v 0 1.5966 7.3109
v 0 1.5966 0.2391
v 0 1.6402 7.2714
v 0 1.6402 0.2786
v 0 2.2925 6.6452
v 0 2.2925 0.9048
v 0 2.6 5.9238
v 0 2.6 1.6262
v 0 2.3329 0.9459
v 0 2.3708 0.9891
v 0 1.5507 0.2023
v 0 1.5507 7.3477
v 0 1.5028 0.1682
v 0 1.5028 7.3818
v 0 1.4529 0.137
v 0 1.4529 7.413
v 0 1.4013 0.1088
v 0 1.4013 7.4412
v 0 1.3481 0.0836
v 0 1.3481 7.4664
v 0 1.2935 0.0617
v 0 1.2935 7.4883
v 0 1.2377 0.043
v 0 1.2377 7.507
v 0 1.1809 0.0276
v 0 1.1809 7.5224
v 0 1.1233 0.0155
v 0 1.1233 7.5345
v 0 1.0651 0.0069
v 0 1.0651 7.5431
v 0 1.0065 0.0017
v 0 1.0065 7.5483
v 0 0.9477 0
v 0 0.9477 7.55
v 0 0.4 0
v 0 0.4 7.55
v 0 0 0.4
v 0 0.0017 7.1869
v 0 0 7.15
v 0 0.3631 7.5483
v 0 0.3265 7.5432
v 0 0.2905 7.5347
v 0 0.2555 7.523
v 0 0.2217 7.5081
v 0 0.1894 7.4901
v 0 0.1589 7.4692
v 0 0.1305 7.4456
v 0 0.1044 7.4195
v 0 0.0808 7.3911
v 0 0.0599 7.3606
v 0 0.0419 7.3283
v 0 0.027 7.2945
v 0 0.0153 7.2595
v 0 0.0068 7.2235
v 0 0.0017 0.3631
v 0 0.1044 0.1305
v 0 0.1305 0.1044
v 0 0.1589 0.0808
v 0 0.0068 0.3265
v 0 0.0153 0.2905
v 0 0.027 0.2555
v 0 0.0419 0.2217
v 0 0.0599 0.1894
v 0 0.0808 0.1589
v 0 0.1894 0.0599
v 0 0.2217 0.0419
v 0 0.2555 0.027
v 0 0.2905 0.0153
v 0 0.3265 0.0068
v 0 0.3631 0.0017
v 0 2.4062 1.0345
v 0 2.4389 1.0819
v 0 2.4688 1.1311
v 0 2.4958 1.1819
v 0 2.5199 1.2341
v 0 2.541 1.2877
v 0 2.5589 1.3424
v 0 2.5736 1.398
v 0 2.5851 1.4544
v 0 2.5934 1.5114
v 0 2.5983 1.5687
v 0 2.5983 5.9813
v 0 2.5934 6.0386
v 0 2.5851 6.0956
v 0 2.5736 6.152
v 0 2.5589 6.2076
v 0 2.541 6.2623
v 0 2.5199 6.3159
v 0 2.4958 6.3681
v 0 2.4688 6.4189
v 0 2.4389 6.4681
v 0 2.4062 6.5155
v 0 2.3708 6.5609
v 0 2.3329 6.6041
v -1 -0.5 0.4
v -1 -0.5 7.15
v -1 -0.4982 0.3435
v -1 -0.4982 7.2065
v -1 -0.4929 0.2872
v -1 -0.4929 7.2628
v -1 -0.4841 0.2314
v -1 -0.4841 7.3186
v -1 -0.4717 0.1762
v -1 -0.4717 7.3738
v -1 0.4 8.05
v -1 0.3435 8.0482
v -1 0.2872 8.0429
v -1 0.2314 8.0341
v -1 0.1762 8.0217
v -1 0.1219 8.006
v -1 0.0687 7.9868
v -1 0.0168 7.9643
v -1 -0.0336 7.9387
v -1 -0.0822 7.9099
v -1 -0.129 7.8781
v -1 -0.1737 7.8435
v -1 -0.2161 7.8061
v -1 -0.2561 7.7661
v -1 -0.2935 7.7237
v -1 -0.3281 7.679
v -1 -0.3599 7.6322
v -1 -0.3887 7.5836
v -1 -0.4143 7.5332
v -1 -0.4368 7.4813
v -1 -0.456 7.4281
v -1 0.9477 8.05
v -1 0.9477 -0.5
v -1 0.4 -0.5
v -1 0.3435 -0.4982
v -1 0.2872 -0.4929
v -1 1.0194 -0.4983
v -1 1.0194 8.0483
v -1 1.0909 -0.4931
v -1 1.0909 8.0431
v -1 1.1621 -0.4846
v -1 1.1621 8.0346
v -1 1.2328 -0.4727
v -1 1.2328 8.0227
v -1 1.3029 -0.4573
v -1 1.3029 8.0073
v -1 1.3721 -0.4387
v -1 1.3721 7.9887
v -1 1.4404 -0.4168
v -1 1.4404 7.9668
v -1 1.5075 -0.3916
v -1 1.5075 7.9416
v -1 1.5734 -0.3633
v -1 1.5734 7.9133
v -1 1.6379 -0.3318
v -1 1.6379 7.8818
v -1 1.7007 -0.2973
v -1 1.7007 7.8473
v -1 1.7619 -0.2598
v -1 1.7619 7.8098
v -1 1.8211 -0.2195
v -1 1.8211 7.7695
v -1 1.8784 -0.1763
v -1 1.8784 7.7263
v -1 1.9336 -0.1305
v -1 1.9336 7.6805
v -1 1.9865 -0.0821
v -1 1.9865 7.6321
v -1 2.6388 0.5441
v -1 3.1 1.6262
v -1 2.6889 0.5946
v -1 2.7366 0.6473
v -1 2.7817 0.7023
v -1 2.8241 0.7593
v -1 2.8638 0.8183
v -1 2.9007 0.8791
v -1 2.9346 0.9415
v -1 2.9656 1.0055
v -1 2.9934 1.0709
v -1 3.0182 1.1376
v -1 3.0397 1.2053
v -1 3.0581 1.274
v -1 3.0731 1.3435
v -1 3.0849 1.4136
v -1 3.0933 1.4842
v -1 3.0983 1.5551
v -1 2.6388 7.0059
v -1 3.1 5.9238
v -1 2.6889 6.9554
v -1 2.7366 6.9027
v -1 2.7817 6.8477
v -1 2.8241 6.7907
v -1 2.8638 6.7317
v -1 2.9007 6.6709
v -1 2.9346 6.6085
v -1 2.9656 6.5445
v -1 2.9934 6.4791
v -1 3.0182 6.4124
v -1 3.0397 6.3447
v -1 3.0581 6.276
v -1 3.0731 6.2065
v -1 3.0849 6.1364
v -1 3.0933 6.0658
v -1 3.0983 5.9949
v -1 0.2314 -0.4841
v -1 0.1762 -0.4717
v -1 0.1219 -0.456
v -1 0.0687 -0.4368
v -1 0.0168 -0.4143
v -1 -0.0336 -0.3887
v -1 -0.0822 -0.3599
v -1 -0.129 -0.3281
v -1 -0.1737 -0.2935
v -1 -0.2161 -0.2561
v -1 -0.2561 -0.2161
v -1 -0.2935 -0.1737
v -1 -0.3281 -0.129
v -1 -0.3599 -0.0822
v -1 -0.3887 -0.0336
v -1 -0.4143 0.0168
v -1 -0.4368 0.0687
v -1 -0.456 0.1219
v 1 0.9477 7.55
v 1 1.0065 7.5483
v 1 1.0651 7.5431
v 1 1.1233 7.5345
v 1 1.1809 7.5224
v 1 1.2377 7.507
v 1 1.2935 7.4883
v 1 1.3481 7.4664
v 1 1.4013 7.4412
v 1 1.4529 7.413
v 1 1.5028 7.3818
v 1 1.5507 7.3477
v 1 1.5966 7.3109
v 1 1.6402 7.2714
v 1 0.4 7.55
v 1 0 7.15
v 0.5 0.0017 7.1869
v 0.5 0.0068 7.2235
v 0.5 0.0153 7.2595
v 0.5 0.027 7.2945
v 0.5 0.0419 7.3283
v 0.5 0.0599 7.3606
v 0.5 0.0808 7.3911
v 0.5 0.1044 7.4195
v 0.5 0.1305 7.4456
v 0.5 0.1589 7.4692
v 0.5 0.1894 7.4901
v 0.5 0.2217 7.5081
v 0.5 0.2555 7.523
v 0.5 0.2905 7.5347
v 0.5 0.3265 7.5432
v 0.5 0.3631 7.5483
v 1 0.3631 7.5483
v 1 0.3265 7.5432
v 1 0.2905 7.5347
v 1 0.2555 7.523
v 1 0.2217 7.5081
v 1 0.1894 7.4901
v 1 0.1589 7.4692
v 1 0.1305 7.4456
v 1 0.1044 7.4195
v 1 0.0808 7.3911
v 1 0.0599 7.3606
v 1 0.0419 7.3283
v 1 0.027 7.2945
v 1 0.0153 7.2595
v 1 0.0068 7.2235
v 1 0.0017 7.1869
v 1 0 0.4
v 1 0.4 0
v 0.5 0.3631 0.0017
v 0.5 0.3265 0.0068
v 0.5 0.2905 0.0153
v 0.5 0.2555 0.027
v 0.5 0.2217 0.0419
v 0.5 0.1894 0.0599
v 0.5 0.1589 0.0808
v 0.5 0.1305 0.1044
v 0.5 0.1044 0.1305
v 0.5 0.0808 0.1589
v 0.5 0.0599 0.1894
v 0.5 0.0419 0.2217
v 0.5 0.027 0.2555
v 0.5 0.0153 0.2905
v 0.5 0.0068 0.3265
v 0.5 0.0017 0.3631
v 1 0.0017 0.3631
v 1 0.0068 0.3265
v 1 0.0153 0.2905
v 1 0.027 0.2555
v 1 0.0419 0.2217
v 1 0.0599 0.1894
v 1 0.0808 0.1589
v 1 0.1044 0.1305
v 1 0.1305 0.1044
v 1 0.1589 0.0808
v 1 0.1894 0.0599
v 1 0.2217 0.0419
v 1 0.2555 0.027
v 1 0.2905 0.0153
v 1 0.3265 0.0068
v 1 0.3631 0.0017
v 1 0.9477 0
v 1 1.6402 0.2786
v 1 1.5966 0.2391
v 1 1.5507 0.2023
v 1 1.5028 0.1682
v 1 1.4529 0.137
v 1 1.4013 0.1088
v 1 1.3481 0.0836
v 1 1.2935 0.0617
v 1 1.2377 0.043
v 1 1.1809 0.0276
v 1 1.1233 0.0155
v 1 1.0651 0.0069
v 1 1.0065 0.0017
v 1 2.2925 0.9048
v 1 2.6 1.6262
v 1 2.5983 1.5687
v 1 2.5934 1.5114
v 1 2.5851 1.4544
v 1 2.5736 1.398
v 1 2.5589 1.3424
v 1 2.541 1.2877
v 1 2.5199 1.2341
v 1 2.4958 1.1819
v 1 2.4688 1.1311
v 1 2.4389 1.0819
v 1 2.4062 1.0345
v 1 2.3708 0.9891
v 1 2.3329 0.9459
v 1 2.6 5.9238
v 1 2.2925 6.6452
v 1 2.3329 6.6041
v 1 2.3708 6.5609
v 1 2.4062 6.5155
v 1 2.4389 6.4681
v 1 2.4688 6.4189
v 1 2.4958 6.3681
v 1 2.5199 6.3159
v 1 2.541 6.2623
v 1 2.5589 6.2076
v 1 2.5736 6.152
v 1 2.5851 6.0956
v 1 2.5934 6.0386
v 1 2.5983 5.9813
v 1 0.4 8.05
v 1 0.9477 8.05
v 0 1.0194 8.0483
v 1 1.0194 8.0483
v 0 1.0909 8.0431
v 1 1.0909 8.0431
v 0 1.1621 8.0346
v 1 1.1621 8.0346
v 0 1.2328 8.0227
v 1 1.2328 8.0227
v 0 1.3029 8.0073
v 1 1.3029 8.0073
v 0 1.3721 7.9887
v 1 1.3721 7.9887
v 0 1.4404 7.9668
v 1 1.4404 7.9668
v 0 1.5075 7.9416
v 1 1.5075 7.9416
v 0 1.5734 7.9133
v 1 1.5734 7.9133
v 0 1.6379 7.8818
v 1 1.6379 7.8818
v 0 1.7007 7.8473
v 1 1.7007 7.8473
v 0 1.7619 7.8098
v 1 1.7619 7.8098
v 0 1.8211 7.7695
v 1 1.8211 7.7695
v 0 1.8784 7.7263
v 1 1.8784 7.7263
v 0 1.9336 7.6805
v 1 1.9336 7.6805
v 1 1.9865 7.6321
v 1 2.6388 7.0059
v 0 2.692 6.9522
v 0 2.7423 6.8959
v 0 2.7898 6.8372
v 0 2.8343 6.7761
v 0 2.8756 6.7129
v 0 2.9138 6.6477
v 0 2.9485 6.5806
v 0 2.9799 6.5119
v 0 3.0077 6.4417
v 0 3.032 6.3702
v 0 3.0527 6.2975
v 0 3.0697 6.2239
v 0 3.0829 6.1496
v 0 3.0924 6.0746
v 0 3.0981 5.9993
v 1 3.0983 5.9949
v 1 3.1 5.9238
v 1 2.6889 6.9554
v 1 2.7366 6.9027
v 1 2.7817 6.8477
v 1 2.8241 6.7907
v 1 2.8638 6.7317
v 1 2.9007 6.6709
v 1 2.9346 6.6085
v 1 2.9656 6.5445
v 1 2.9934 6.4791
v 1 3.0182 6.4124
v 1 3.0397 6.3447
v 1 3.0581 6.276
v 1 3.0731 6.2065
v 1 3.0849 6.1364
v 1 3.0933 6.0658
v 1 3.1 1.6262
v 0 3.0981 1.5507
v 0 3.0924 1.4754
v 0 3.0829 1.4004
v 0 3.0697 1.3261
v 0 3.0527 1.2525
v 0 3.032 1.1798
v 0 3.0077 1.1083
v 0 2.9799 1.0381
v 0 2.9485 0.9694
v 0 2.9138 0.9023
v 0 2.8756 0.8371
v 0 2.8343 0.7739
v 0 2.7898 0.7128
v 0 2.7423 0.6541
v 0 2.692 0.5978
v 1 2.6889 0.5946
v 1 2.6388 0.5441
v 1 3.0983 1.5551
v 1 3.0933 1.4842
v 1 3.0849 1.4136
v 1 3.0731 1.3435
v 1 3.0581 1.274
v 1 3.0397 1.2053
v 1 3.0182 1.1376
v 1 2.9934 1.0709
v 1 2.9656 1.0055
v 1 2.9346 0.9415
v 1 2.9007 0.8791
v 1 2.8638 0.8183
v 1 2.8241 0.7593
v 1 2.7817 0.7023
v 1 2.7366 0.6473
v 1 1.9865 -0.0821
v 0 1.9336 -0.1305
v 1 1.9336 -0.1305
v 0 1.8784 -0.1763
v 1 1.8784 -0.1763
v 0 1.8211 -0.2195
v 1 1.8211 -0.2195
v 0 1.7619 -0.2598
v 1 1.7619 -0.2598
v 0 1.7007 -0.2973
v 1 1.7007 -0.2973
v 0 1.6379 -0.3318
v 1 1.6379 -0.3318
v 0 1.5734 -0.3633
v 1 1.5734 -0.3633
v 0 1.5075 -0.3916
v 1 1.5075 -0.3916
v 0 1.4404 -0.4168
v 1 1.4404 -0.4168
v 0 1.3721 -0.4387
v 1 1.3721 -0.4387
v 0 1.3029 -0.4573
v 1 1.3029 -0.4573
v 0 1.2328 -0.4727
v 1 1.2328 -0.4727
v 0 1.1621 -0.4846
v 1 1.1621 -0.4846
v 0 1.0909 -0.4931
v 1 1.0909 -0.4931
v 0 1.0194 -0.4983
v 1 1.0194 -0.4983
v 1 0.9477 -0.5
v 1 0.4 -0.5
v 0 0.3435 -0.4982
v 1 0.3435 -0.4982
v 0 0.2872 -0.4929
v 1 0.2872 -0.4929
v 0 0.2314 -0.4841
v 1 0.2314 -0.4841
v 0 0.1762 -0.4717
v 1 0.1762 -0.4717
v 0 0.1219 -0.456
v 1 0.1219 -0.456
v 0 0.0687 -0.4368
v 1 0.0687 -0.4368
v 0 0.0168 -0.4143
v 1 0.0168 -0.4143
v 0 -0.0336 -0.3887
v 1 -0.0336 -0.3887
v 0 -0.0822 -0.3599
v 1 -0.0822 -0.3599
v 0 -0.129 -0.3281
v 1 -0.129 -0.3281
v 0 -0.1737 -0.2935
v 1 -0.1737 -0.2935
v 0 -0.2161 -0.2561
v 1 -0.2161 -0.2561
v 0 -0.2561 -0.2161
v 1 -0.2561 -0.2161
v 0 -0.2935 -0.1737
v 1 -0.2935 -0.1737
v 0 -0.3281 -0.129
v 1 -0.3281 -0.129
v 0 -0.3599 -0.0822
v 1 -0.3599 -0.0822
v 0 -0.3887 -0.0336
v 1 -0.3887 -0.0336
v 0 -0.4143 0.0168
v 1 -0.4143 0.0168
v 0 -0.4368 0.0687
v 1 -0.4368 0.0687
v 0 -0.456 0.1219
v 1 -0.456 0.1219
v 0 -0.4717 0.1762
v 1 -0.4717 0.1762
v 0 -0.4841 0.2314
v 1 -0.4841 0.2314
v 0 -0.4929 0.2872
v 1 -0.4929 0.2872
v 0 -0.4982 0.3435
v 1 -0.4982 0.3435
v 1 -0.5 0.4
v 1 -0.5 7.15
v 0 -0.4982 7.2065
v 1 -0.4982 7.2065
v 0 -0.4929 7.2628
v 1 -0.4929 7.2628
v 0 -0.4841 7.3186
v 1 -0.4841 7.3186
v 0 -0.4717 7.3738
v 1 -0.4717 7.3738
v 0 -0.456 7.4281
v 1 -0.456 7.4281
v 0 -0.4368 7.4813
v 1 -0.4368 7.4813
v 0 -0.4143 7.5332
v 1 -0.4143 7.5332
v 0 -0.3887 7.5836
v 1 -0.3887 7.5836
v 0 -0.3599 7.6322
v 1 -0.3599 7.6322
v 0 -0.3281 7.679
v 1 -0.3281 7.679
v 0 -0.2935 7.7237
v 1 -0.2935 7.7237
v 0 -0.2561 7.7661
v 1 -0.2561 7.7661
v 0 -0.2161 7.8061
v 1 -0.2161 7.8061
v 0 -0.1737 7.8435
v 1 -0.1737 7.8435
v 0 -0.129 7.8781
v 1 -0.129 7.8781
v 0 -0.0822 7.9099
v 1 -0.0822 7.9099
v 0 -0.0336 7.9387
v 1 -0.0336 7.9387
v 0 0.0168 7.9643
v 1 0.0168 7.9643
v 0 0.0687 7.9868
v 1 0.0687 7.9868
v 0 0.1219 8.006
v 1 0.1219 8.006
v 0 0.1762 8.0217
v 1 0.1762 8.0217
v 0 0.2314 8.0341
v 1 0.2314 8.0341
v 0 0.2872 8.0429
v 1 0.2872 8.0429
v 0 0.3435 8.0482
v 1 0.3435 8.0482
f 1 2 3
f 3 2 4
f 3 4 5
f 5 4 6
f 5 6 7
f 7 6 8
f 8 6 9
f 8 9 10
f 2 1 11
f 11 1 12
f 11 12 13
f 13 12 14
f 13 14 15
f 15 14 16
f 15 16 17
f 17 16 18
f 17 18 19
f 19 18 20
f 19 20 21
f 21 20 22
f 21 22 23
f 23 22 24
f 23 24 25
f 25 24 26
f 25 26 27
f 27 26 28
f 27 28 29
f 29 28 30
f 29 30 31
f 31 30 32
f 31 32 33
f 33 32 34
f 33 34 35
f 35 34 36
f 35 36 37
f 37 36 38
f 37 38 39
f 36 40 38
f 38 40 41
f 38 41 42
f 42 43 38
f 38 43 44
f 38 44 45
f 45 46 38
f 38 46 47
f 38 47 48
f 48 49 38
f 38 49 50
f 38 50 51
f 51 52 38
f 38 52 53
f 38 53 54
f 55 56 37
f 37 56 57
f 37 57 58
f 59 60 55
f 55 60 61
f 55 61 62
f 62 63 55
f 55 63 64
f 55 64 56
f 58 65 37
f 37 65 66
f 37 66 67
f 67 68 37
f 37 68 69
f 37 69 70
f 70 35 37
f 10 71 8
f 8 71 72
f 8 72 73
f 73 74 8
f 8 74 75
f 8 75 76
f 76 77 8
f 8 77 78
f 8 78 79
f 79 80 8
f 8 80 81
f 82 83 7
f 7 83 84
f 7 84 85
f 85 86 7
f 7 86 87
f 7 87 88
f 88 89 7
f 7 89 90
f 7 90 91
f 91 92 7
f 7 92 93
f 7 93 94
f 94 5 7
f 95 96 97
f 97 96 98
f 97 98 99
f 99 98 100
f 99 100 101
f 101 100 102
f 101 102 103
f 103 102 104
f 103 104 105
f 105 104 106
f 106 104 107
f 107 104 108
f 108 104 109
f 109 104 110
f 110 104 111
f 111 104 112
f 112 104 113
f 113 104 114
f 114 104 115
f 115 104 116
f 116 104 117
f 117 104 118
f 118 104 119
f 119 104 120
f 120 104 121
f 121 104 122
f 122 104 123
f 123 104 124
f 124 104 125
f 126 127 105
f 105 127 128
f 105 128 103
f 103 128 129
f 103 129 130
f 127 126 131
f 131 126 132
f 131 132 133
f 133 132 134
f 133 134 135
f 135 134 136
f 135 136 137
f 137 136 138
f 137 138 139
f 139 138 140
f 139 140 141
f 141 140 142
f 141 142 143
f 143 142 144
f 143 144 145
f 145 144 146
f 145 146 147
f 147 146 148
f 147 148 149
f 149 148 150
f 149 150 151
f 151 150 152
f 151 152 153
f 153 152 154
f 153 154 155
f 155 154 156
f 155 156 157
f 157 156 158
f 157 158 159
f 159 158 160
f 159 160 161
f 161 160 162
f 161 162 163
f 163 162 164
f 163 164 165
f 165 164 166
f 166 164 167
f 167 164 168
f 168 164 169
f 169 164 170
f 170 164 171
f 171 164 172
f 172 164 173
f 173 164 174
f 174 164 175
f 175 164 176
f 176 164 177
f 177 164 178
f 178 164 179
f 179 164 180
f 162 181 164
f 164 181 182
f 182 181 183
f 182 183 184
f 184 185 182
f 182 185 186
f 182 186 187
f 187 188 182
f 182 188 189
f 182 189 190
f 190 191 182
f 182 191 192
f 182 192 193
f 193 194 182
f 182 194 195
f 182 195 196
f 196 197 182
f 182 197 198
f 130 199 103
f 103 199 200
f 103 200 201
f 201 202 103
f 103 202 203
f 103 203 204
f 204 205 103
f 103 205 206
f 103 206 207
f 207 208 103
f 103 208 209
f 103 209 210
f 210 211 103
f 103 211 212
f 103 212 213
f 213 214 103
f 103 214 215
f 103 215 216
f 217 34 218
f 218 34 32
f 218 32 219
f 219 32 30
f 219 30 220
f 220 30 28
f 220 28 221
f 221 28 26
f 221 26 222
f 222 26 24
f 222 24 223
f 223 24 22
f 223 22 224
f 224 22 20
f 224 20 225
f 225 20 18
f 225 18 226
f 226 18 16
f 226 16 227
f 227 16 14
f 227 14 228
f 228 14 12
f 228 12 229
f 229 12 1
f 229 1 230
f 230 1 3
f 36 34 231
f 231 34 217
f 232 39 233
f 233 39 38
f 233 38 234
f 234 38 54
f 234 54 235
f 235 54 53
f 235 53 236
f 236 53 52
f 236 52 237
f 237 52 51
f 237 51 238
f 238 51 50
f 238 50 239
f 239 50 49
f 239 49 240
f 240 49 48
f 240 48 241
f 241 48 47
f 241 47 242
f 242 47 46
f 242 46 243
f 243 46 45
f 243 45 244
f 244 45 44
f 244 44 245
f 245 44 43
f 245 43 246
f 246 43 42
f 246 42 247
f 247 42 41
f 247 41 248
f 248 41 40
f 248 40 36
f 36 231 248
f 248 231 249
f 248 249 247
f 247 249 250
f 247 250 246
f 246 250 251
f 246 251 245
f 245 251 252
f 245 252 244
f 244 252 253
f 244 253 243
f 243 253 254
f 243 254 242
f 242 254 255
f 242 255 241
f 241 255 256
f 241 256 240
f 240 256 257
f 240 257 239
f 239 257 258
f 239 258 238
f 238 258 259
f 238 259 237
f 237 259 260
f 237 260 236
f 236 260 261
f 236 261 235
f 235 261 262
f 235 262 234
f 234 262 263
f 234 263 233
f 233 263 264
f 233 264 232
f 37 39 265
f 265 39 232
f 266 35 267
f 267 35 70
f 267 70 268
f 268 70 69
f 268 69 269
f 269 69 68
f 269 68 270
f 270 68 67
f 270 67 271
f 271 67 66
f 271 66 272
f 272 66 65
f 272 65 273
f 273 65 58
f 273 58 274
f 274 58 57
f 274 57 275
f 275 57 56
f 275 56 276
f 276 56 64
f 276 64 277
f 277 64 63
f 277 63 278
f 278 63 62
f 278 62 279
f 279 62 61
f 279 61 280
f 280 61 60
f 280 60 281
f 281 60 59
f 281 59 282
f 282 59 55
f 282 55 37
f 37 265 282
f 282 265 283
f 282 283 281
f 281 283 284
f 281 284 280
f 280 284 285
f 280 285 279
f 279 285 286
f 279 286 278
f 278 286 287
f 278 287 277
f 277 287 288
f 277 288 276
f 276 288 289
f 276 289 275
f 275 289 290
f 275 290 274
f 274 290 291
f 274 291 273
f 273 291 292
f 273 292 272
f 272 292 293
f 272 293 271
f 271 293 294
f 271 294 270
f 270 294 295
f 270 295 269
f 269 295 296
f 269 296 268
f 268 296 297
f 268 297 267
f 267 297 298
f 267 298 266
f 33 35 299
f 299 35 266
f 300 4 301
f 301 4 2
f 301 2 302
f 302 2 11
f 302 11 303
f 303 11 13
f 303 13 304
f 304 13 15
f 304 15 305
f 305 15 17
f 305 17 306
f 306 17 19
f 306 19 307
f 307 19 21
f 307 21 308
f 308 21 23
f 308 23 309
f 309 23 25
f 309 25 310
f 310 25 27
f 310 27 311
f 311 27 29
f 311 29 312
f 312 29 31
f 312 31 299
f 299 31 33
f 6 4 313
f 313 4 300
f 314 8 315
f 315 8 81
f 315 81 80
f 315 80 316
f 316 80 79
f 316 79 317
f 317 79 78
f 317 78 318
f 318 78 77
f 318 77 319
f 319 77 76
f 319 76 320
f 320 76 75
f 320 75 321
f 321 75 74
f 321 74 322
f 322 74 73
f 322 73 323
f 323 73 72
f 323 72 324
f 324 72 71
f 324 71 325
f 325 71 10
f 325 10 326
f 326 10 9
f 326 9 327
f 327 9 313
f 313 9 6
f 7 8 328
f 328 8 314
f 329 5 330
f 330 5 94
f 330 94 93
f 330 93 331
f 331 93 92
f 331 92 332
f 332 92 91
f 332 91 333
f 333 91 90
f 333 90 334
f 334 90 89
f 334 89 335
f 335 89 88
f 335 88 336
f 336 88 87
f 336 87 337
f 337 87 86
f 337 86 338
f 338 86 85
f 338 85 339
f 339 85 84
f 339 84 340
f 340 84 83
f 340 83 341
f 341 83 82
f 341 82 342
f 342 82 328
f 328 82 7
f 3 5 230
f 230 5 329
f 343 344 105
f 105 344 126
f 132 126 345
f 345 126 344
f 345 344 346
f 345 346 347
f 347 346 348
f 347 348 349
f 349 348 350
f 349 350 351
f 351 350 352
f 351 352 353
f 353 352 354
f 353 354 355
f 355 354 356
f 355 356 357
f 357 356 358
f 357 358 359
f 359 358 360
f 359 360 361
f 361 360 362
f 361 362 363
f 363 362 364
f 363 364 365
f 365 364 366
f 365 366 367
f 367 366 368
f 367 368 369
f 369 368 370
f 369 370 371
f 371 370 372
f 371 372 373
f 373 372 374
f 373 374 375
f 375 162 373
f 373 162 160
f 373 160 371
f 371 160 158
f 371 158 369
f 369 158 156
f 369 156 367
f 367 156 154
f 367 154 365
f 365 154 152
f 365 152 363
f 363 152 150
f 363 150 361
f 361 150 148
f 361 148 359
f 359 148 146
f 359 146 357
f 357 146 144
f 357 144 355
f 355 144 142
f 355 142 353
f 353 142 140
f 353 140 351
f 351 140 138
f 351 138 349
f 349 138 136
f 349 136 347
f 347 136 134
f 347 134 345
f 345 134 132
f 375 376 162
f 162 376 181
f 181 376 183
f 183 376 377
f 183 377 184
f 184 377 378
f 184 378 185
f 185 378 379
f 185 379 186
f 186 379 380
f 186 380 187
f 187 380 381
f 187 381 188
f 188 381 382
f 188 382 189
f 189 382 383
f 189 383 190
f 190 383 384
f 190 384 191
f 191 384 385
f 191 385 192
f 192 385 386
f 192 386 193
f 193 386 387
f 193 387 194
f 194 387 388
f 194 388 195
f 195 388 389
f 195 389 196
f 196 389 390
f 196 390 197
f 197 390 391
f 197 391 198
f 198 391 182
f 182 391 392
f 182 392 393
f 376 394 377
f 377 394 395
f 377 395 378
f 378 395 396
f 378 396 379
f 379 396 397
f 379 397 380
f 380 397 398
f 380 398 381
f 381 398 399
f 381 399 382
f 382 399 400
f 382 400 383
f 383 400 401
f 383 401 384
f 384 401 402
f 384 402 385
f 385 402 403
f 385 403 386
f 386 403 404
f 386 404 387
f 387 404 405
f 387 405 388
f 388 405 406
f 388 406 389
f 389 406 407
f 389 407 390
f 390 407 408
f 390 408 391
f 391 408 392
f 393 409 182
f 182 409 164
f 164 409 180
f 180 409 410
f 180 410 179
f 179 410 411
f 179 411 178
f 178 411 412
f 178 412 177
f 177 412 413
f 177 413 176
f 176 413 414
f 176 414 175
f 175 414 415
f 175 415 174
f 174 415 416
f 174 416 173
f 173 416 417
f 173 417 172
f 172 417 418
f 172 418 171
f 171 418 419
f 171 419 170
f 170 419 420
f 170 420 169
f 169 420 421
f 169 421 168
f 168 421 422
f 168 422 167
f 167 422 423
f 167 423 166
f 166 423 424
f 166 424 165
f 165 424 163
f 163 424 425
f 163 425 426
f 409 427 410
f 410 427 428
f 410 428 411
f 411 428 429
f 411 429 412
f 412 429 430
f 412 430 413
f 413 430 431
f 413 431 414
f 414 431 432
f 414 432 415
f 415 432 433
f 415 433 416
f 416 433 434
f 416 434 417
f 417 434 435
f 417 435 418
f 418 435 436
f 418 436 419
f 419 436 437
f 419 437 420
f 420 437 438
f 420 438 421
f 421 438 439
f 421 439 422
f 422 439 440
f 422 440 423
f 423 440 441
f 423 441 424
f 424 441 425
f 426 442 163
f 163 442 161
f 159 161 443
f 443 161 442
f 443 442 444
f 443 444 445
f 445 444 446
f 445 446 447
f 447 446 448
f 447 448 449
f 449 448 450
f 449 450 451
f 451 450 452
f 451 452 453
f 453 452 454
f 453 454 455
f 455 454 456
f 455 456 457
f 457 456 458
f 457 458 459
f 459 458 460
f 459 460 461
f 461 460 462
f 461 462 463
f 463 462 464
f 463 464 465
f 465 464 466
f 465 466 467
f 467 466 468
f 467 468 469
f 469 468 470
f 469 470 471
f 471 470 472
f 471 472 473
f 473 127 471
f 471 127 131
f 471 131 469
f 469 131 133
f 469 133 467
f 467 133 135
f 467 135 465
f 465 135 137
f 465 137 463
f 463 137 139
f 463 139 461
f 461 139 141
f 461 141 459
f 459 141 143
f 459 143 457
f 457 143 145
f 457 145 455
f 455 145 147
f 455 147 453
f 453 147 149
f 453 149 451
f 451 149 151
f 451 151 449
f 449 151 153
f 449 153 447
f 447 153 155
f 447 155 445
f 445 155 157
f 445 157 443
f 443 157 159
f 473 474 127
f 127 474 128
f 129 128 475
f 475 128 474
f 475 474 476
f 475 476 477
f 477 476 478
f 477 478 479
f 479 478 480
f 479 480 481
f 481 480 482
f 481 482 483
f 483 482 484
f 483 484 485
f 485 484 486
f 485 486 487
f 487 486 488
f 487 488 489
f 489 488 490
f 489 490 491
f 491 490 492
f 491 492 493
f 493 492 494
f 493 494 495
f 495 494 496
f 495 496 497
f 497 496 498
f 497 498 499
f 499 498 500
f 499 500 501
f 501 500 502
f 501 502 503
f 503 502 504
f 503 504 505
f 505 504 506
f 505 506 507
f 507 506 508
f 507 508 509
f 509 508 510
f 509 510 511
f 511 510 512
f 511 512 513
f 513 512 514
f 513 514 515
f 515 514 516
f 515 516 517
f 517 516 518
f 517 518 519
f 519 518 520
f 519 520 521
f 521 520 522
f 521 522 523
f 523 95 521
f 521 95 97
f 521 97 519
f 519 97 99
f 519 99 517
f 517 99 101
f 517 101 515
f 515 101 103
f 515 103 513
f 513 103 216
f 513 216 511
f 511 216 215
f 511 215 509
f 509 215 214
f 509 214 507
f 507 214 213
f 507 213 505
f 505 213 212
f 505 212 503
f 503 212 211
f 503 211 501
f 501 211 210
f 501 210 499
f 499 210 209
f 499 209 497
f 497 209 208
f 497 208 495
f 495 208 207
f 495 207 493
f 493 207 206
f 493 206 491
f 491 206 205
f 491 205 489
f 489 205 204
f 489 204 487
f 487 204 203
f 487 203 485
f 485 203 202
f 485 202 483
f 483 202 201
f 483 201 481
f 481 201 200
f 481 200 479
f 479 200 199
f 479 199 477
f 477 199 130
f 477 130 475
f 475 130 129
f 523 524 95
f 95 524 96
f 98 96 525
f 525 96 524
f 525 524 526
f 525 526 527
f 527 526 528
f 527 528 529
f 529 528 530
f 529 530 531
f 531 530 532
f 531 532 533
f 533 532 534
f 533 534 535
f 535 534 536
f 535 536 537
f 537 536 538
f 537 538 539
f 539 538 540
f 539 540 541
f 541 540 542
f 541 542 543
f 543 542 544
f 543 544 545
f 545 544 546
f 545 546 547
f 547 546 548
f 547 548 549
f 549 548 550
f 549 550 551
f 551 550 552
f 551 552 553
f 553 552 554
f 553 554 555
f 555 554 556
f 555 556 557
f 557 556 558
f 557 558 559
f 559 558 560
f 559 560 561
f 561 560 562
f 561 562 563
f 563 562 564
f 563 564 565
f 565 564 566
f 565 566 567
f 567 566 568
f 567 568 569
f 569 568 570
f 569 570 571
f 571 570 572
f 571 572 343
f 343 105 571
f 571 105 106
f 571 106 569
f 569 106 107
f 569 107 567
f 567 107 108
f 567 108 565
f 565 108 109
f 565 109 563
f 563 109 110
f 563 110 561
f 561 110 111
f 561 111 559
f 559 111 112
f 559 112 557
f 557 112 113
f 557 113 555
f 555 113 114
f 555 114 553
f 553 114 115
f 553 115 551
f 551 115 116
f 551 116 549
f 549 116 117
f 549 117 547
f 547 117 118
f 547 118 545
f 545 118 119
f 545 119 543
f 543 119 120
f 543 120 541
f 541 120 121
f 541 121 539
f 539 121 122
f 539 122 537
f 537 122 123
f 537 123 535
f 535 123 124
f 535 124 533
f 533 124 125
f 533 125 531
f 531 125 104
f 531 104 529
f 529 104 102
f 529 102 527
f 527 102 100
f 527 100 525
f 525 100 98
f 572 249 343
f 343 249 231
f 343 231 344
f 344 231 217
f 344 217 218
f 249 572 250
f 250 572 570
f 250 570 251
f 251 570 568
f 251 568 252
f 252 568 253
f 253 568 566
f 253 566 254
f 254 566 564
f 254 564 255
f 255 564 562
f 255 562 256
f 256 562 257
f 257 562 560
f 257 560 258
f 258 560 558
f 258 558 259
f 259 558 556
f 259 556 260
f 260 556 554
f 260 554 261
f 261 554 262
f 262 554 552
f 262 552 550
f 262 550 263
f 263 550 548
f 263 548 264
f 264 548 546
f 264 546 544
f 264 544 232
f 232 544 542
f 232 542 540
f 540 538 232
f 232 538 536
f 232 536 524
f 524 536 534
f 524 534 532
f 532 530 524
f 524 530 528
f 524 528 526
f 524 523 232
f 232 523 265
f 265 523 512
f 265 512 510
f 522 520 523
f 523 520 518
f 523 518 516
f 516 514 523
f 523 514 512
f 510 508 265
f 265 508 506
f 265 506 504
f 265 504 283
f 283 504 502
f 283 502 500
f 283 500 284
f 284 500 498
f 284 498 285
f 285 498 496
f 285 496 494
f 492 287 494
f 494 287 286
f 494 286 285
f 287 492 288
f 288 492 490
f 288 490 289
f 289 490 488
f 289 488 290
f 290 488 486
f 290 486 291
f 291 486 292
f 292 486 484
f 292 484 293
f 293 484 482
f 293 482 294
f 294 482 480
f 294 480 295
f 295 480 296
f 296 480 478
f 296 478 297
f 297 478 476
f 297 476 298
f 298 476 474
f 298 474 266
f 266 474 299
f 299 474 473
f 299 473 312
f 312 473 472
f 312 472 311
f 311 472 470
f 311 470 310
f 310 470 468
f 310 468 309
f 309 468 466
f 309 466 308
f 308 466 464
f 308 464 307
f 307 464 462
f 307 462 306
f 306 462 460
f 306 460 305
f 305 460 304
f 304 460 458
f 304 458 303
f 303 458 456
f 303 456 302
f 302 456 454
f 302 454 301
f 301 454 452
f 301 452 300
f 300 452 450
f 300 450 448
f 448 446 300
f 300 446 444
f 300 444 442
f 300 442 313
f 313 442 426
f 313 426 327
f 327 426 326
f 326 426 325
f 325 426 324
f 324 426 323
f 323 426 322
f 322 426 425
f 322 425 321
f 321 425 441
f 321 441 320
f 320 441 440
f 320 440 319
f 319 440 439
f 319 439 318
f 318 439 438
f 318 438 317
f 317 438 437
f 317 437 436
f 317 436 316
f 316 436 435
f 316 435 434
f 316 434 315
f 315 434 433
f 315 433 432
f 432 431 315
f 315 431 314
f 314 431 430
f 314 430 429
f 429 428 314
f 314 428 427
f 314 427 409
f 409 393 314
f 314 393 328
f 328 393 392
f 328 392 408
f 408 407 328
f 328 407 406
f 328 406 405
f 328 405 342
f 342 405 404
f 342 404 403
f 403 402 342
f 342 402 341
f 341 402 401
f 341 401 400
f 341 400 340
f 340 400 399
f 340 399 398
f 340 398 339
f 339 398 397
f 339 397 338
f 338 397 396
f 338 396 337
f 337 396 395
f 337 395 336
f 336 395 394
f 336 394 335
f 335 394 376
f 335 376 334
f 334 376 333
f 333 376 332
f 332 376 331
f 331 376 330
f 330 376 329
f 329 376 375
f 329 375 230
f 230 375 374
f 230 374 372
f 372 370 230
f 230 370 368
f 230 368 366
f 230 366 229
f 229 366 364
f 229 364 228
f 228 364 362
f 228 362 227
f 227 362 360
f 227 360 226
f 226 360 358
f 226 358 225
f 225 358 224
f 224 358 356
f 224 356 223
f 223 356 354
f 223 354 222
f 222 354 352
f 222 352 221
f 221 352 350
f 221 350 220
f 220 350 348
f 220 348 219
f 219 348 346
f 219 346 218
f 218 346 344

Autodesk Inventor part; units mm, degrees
ref_plane "YZ Plane" through (0, 0, 0) normal (1, 0, 0) x (0, 1, 0)
ref_plane "XZ Plane" through (0, 0, 0) normal (0, 1, 0) x (-1, 0, 0)
ref_plane "XY Plane" through (0, 0, 0) normal (0, 0, 1) x (1, 0, 0)
sketch "Skizze2" plane through (0, 0, 0) normal (1, 0, 0) x (0, 1, 0)
  arc A0 (0.4, 7.55) -> (0, 7.15) centre (0.4, 7.15) ccw projected
  line L0 (0.4, 7.55) -> (0.9477, 7.55) projected
  arc A1 (1.6402, 7.2714) -> (0.9477, 7.55) centre (0.9477, 6.55) ccw projected
  line L1 (1.6402, 7.2714) -> (2.2925, 6.6452) projected
  arc A2 (2.6, 5.9238) -> (2.2925, 6.6452) centre (1.6, 5.9238) ccw projected
  line L2 (2.6, 5.9238) -> (2.6, 1.6262) projected
  arc A3 (2.2925, 0.9048) -> (2.6, 1.6262) centre (1.6, 1.6262) ccw projected
  line L3 (2.2925, 0.9048) -> (1.6402, 0.2786) projected
  arc A4 (0.9477, 0) -> (1.6402, 0.2786) centre (0.9477, 1) ccw projected
  line L4 (0.9477, 0) -> (0.4, 0) projected
  arc A5 (0, 0.4) -> (0.4, 0) centre (0.4, 0.4) ccw projected
  line L5 (0, 0.4) -> (0, 7.15) projected
  line L6 (0.9477, 8.05) -> (0.4, 8.05)
  arc A6 (0.4, 8.05) -> (-0.5, 7.15) centre (0.4, 7.15) ccw
  line L7 (-0.5, 7.15) -> (-0.5, 0.4)
  arc A7 (-0.5, 0.4) -> (0.4, -0.5) centre (0.4, 0.4) ccw
  line L8 (0.4, -0.5) -> (0.9477, -0.5)
  arc A8 (0.9477, -0.5) -> (1.9865, -0.0821) centre (0.9477, 1) ccw
  line L9 (1.9865, -0.0821) -> (2.6388, 0.5441)
  arc A9 (2.6388, 0.5441) -> (3.1, 1.6262) centre (1.6, 1.6262) ccw
  line L10 (3.1, 1.6262) -> (3.1, 5.9238)
  arc A10 (3.1, 5.9238) -> (2.6388, 7.0059) centre (1.6, 5.9238) ccw
  line L11 (2.6388, 7.0059) -> (1.9865, 7.6321)
  arc A11 (1.9865, 7.6321) -> (0.9477, 8.05) centre (0.9477, 6.55) ccw
  point P0 (0, 0)
  dimension "d0" = 0.5
extrude "Extrusion1" add sketch "Skizze2" along normal blind 1
extrude "Extrusion2" add sketch "Skizze2" against normal blind 1 contours L0 A1 L1 A2 L2 A3 L3 A4 L4 A5 L5 A0 | A11 L11 A10 L10 A9 L9 A8 L8 A7 L7 A6 L6
properties part number "Power_Cap" material "PA 6.6"
